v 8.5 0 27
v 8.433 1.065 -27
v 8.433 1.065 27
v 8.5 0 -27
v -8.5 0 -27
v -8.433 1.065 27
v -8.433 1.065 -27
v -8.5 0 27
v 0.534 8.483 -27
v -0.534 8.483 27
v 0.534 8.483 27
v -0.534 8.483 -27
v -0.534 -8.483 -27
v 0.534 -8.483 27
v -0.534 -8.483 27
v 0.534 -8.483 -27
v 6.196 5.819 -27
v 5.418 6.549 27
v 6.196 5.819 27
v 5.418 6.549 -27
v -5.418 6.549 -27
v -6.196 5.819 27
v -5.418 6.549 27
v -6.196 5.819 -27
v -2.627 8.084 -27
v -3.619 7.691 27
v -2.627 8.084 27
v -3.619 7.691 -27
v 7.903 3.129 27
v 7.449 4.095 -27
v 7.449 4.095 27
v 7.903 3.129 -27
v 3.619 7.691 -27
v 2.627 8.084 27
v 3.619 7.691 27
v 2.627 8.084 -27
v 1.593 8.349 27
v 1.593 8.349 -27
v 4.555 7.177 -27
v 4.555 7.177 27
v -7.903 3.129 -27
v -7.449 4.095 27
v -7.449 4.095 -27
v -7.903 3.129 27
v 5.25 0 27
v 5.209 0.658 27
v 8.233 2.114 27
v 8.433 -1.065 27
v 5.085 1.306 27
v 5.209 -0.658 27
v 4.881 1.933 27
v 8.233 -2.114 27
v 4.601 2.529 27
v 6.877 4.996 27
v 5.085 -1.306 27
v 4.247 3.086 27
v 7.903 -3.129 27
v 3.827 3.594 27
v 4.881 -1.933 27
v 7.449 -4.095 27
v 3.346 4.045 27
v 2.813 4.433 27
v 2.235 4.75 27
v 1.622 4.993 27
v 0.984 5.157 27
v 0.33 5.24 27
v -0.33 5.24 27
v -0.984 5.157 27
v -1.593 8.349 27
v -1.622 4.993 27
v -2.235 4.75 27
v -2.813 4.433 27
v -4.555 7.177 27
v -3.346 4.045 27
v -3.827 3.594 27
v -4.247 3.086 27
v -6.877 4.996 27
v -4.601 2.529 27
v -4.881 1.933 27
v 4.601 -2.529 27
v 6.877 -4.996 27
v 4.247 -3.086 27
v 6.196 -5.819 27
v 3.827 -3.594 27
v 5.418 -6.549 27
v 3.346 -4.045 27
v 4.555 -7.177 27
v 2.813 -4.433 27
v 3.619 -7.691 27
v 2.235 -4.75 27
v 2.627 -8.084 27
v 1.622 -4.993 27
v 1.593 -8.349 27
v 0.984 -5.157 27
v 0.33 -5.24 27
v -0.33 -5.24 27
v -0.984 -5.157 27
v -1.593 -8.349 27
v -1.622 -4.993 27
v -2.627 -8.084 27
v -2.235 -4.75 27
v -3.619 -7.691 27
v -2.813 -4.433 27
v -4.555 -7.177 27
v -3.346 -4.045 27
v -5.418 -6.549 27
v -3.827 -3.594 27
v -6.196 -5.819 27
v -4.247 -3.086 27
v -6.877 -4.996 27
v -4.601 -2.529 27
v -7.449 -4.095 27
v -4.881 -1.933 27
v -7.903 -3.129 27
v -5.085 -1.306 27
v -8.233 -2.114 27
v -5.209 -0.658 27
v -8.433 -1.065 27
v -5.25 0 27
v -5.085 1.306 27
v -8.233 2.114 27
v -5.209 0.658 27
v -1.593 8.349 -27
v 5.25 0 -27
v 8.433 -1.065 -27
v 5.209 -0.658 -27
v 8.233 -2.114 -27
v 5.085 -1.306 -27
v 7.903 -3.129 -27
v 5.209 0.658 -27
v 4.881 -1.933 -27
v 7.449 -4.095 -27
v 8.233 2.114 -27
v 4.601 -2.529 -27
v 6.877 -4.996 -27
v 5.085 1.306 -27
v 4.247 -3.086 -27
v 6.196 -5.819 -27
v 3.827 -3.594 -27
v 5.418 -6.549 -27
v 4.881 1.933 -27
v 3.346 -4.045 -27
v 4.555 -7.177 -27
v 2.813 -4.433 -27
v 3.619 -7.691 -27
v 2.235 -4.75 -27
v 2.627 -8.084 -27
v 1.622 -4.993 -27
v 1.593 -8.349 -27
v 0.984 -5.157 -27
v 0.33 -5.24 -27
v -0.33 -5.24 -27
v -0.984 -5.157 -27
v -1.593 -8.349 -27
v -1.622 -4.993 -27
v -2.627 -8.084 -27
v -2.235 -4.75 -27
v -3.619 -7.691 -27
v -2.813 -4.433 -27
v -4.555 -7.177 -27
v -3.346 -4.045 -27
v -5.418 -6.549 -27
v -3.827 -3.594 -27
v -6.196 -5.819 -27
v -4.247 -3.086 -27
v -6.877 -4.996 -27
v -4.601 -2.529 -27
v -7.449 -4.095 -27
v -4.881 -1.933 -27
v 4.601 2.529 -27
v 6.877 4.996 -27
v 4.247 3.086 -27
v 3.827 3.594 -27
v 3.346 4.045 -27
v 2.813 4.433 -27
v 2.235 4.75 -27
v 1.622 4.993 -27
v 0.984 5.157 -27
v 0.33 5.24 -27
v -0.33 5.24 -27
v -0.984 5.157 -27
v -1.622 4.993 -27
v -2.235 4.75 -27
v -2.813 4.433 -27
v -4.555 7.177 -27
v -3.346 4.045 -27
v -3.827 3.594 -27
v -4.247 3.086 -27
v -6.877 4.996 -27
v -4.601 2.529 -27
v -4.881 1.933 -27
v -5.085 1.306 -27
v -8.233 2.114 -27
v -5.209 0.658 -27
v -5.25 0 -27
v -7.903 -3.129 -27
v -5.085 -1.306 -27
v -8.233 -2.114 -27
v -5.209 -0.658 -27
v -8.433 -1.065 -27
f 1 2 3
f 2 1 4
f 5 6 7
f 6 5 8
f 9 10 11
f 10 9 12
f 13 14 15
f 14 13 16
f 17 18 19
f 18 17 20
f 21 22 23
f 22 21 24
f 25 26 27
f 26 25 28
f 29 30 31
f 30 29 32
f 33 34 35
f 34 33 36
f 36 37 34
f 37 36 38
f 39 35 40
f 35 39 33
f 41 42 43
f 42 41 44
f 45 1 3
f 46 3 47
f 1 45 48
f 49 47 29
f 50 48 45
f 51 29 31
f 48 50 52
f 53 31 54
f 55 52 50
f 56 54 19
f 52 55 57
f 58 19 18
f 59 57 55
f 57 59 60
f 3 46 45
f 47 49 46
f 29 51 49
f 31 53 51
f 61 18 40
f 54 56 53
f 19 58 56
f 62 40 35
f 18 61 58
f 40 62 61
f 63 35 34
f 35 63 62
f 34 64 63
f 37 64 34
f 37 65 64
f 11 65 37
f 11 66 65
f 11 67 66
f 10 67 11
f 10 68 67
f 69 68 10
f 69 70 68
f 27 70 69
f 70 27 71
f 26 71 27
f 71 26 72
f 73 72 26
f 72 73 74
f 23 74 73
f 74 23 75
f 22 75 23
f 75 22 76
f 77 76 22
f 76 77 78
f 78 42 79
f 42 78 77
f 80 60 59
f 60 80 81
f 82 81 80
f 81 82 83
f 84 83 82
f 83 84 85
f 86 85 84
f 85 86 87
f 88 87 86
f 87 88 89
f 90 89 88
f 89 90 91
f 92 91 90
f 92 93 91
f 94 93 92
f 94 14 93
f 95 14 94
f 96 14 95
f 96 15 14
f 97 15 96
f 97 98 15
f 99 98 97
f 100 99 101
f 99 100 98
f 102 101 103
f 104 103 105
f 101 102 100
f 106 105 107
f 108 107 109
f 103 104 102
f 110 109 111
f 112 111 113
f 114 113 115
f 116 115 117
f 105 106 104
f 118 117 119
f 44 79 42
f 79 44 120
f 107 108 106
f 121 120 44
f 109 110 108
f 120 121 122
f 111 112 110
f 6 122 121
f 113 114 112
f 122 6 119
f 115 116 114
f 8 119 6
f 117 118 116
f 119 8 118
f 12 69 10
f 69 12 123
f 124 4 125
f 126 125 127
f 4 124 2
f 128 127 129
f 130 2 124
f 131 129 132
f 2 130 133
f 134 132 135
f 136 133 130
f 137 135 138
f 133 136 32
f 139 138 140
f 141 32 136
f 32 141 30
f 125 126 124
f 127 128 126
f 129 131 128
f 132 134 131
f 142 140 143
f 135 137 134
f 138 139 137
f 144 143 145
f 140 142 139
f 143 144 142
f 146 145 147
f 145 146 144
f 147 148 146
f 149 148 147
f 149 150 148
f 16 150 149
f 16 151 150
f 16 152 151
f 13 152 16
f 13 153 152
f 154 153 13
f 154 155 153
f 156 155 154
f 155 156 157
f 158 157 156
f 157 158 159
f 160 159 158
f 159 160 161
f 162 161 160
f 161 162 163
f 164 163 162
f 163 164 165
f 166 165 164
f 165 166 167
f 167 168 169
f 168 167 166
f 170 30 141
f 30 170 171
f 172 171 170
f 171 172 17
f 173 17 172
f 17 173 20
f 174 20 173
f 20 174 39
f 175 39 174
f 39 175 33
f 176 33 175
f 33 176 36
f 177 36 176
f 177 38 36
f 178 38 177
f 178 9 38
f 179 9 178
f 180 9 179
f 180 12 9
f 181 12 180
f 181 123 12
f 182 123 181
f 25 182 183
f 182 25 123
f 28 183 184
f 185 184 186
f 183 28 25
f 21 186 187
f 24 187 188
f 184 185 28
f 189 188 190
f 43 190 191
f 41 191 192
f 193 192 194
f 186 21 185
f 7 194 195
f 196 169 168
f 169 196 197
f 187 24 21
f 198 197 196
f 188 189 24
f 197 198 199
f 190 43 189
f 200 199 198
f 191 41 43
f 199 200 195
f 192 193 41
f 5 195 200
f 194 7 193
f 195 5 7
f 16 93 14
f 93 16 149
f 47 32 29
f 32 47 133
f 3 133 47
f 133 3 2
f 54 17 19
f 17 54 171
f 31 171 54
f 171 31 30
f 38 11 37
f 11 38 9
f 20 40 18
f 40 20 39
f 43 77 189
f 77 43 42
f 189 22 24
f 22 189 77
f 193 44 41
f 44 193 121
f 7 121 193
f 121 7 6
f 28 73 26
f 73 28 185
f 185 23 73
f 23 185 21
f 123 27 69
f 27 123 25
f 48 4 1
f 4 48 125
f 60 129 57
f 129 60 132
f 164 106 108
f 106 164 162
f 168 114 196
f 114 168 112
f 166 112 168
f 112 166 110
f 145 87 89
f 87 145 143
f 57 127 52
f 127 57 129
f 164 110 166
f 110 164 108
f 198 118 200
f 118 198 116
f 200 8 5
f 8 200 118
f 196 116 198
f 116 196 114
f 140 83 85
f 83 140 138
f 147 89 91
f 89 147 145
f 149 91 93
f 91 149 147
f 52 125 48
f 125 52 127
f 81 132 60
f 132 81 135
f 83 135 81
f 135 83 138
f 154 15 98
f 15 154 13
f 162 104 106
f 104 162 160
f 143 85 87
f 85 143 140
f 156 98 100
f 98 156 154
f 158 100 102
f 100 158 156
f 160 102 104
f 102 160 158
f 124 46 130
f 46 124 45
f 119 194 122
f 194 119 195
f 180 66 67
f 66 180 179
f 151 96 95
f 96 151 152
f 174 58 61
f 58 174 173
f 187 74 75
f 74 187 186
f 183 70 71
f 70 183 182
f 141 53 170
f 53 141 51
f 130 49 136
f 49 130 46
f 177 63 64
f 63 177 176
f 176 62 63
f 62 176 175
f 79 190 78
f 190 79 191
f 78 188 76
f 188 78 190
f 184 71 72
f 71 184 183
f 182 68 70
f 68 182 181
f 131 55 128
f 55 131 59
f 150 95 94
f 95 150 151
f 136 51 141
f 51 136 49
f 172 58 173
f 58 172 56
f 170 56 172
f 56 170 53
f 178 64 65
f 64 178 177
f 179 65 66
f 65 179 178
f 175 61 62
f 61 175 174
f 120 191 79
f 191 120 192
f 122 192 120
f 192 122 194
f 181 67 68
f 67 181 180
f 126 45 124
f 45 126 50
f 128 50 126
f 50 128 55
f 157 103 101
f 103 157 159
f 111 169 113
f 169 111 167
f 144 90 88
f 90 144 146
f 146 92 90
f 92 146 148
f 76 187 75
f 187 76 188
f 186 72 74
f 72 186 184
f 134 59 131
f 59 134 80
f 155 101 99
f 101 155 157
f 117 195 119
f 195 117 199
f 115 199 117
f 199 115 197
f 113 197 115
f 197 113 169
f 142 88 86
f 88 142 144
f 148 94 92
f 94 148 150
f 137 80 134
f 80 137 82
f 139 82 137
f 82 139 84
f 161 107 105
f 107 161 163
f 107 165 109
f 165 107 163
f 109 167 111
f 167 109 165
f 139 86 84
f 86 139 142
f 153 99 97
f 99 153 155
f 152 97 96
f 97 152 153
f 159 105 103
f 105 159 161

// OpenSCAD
$fn = 50;


difference() {
	union() {
		translate(v = [0, 0, -27.0000000000]) {
			cylinder(h = 54, r = 8.5000000000);
		}
	}
	union() {
		translate(v = [0, 0, -100.0000000000]) {
			cylinder(h = 200, r = 5.2500000000);
		}
	}
}
